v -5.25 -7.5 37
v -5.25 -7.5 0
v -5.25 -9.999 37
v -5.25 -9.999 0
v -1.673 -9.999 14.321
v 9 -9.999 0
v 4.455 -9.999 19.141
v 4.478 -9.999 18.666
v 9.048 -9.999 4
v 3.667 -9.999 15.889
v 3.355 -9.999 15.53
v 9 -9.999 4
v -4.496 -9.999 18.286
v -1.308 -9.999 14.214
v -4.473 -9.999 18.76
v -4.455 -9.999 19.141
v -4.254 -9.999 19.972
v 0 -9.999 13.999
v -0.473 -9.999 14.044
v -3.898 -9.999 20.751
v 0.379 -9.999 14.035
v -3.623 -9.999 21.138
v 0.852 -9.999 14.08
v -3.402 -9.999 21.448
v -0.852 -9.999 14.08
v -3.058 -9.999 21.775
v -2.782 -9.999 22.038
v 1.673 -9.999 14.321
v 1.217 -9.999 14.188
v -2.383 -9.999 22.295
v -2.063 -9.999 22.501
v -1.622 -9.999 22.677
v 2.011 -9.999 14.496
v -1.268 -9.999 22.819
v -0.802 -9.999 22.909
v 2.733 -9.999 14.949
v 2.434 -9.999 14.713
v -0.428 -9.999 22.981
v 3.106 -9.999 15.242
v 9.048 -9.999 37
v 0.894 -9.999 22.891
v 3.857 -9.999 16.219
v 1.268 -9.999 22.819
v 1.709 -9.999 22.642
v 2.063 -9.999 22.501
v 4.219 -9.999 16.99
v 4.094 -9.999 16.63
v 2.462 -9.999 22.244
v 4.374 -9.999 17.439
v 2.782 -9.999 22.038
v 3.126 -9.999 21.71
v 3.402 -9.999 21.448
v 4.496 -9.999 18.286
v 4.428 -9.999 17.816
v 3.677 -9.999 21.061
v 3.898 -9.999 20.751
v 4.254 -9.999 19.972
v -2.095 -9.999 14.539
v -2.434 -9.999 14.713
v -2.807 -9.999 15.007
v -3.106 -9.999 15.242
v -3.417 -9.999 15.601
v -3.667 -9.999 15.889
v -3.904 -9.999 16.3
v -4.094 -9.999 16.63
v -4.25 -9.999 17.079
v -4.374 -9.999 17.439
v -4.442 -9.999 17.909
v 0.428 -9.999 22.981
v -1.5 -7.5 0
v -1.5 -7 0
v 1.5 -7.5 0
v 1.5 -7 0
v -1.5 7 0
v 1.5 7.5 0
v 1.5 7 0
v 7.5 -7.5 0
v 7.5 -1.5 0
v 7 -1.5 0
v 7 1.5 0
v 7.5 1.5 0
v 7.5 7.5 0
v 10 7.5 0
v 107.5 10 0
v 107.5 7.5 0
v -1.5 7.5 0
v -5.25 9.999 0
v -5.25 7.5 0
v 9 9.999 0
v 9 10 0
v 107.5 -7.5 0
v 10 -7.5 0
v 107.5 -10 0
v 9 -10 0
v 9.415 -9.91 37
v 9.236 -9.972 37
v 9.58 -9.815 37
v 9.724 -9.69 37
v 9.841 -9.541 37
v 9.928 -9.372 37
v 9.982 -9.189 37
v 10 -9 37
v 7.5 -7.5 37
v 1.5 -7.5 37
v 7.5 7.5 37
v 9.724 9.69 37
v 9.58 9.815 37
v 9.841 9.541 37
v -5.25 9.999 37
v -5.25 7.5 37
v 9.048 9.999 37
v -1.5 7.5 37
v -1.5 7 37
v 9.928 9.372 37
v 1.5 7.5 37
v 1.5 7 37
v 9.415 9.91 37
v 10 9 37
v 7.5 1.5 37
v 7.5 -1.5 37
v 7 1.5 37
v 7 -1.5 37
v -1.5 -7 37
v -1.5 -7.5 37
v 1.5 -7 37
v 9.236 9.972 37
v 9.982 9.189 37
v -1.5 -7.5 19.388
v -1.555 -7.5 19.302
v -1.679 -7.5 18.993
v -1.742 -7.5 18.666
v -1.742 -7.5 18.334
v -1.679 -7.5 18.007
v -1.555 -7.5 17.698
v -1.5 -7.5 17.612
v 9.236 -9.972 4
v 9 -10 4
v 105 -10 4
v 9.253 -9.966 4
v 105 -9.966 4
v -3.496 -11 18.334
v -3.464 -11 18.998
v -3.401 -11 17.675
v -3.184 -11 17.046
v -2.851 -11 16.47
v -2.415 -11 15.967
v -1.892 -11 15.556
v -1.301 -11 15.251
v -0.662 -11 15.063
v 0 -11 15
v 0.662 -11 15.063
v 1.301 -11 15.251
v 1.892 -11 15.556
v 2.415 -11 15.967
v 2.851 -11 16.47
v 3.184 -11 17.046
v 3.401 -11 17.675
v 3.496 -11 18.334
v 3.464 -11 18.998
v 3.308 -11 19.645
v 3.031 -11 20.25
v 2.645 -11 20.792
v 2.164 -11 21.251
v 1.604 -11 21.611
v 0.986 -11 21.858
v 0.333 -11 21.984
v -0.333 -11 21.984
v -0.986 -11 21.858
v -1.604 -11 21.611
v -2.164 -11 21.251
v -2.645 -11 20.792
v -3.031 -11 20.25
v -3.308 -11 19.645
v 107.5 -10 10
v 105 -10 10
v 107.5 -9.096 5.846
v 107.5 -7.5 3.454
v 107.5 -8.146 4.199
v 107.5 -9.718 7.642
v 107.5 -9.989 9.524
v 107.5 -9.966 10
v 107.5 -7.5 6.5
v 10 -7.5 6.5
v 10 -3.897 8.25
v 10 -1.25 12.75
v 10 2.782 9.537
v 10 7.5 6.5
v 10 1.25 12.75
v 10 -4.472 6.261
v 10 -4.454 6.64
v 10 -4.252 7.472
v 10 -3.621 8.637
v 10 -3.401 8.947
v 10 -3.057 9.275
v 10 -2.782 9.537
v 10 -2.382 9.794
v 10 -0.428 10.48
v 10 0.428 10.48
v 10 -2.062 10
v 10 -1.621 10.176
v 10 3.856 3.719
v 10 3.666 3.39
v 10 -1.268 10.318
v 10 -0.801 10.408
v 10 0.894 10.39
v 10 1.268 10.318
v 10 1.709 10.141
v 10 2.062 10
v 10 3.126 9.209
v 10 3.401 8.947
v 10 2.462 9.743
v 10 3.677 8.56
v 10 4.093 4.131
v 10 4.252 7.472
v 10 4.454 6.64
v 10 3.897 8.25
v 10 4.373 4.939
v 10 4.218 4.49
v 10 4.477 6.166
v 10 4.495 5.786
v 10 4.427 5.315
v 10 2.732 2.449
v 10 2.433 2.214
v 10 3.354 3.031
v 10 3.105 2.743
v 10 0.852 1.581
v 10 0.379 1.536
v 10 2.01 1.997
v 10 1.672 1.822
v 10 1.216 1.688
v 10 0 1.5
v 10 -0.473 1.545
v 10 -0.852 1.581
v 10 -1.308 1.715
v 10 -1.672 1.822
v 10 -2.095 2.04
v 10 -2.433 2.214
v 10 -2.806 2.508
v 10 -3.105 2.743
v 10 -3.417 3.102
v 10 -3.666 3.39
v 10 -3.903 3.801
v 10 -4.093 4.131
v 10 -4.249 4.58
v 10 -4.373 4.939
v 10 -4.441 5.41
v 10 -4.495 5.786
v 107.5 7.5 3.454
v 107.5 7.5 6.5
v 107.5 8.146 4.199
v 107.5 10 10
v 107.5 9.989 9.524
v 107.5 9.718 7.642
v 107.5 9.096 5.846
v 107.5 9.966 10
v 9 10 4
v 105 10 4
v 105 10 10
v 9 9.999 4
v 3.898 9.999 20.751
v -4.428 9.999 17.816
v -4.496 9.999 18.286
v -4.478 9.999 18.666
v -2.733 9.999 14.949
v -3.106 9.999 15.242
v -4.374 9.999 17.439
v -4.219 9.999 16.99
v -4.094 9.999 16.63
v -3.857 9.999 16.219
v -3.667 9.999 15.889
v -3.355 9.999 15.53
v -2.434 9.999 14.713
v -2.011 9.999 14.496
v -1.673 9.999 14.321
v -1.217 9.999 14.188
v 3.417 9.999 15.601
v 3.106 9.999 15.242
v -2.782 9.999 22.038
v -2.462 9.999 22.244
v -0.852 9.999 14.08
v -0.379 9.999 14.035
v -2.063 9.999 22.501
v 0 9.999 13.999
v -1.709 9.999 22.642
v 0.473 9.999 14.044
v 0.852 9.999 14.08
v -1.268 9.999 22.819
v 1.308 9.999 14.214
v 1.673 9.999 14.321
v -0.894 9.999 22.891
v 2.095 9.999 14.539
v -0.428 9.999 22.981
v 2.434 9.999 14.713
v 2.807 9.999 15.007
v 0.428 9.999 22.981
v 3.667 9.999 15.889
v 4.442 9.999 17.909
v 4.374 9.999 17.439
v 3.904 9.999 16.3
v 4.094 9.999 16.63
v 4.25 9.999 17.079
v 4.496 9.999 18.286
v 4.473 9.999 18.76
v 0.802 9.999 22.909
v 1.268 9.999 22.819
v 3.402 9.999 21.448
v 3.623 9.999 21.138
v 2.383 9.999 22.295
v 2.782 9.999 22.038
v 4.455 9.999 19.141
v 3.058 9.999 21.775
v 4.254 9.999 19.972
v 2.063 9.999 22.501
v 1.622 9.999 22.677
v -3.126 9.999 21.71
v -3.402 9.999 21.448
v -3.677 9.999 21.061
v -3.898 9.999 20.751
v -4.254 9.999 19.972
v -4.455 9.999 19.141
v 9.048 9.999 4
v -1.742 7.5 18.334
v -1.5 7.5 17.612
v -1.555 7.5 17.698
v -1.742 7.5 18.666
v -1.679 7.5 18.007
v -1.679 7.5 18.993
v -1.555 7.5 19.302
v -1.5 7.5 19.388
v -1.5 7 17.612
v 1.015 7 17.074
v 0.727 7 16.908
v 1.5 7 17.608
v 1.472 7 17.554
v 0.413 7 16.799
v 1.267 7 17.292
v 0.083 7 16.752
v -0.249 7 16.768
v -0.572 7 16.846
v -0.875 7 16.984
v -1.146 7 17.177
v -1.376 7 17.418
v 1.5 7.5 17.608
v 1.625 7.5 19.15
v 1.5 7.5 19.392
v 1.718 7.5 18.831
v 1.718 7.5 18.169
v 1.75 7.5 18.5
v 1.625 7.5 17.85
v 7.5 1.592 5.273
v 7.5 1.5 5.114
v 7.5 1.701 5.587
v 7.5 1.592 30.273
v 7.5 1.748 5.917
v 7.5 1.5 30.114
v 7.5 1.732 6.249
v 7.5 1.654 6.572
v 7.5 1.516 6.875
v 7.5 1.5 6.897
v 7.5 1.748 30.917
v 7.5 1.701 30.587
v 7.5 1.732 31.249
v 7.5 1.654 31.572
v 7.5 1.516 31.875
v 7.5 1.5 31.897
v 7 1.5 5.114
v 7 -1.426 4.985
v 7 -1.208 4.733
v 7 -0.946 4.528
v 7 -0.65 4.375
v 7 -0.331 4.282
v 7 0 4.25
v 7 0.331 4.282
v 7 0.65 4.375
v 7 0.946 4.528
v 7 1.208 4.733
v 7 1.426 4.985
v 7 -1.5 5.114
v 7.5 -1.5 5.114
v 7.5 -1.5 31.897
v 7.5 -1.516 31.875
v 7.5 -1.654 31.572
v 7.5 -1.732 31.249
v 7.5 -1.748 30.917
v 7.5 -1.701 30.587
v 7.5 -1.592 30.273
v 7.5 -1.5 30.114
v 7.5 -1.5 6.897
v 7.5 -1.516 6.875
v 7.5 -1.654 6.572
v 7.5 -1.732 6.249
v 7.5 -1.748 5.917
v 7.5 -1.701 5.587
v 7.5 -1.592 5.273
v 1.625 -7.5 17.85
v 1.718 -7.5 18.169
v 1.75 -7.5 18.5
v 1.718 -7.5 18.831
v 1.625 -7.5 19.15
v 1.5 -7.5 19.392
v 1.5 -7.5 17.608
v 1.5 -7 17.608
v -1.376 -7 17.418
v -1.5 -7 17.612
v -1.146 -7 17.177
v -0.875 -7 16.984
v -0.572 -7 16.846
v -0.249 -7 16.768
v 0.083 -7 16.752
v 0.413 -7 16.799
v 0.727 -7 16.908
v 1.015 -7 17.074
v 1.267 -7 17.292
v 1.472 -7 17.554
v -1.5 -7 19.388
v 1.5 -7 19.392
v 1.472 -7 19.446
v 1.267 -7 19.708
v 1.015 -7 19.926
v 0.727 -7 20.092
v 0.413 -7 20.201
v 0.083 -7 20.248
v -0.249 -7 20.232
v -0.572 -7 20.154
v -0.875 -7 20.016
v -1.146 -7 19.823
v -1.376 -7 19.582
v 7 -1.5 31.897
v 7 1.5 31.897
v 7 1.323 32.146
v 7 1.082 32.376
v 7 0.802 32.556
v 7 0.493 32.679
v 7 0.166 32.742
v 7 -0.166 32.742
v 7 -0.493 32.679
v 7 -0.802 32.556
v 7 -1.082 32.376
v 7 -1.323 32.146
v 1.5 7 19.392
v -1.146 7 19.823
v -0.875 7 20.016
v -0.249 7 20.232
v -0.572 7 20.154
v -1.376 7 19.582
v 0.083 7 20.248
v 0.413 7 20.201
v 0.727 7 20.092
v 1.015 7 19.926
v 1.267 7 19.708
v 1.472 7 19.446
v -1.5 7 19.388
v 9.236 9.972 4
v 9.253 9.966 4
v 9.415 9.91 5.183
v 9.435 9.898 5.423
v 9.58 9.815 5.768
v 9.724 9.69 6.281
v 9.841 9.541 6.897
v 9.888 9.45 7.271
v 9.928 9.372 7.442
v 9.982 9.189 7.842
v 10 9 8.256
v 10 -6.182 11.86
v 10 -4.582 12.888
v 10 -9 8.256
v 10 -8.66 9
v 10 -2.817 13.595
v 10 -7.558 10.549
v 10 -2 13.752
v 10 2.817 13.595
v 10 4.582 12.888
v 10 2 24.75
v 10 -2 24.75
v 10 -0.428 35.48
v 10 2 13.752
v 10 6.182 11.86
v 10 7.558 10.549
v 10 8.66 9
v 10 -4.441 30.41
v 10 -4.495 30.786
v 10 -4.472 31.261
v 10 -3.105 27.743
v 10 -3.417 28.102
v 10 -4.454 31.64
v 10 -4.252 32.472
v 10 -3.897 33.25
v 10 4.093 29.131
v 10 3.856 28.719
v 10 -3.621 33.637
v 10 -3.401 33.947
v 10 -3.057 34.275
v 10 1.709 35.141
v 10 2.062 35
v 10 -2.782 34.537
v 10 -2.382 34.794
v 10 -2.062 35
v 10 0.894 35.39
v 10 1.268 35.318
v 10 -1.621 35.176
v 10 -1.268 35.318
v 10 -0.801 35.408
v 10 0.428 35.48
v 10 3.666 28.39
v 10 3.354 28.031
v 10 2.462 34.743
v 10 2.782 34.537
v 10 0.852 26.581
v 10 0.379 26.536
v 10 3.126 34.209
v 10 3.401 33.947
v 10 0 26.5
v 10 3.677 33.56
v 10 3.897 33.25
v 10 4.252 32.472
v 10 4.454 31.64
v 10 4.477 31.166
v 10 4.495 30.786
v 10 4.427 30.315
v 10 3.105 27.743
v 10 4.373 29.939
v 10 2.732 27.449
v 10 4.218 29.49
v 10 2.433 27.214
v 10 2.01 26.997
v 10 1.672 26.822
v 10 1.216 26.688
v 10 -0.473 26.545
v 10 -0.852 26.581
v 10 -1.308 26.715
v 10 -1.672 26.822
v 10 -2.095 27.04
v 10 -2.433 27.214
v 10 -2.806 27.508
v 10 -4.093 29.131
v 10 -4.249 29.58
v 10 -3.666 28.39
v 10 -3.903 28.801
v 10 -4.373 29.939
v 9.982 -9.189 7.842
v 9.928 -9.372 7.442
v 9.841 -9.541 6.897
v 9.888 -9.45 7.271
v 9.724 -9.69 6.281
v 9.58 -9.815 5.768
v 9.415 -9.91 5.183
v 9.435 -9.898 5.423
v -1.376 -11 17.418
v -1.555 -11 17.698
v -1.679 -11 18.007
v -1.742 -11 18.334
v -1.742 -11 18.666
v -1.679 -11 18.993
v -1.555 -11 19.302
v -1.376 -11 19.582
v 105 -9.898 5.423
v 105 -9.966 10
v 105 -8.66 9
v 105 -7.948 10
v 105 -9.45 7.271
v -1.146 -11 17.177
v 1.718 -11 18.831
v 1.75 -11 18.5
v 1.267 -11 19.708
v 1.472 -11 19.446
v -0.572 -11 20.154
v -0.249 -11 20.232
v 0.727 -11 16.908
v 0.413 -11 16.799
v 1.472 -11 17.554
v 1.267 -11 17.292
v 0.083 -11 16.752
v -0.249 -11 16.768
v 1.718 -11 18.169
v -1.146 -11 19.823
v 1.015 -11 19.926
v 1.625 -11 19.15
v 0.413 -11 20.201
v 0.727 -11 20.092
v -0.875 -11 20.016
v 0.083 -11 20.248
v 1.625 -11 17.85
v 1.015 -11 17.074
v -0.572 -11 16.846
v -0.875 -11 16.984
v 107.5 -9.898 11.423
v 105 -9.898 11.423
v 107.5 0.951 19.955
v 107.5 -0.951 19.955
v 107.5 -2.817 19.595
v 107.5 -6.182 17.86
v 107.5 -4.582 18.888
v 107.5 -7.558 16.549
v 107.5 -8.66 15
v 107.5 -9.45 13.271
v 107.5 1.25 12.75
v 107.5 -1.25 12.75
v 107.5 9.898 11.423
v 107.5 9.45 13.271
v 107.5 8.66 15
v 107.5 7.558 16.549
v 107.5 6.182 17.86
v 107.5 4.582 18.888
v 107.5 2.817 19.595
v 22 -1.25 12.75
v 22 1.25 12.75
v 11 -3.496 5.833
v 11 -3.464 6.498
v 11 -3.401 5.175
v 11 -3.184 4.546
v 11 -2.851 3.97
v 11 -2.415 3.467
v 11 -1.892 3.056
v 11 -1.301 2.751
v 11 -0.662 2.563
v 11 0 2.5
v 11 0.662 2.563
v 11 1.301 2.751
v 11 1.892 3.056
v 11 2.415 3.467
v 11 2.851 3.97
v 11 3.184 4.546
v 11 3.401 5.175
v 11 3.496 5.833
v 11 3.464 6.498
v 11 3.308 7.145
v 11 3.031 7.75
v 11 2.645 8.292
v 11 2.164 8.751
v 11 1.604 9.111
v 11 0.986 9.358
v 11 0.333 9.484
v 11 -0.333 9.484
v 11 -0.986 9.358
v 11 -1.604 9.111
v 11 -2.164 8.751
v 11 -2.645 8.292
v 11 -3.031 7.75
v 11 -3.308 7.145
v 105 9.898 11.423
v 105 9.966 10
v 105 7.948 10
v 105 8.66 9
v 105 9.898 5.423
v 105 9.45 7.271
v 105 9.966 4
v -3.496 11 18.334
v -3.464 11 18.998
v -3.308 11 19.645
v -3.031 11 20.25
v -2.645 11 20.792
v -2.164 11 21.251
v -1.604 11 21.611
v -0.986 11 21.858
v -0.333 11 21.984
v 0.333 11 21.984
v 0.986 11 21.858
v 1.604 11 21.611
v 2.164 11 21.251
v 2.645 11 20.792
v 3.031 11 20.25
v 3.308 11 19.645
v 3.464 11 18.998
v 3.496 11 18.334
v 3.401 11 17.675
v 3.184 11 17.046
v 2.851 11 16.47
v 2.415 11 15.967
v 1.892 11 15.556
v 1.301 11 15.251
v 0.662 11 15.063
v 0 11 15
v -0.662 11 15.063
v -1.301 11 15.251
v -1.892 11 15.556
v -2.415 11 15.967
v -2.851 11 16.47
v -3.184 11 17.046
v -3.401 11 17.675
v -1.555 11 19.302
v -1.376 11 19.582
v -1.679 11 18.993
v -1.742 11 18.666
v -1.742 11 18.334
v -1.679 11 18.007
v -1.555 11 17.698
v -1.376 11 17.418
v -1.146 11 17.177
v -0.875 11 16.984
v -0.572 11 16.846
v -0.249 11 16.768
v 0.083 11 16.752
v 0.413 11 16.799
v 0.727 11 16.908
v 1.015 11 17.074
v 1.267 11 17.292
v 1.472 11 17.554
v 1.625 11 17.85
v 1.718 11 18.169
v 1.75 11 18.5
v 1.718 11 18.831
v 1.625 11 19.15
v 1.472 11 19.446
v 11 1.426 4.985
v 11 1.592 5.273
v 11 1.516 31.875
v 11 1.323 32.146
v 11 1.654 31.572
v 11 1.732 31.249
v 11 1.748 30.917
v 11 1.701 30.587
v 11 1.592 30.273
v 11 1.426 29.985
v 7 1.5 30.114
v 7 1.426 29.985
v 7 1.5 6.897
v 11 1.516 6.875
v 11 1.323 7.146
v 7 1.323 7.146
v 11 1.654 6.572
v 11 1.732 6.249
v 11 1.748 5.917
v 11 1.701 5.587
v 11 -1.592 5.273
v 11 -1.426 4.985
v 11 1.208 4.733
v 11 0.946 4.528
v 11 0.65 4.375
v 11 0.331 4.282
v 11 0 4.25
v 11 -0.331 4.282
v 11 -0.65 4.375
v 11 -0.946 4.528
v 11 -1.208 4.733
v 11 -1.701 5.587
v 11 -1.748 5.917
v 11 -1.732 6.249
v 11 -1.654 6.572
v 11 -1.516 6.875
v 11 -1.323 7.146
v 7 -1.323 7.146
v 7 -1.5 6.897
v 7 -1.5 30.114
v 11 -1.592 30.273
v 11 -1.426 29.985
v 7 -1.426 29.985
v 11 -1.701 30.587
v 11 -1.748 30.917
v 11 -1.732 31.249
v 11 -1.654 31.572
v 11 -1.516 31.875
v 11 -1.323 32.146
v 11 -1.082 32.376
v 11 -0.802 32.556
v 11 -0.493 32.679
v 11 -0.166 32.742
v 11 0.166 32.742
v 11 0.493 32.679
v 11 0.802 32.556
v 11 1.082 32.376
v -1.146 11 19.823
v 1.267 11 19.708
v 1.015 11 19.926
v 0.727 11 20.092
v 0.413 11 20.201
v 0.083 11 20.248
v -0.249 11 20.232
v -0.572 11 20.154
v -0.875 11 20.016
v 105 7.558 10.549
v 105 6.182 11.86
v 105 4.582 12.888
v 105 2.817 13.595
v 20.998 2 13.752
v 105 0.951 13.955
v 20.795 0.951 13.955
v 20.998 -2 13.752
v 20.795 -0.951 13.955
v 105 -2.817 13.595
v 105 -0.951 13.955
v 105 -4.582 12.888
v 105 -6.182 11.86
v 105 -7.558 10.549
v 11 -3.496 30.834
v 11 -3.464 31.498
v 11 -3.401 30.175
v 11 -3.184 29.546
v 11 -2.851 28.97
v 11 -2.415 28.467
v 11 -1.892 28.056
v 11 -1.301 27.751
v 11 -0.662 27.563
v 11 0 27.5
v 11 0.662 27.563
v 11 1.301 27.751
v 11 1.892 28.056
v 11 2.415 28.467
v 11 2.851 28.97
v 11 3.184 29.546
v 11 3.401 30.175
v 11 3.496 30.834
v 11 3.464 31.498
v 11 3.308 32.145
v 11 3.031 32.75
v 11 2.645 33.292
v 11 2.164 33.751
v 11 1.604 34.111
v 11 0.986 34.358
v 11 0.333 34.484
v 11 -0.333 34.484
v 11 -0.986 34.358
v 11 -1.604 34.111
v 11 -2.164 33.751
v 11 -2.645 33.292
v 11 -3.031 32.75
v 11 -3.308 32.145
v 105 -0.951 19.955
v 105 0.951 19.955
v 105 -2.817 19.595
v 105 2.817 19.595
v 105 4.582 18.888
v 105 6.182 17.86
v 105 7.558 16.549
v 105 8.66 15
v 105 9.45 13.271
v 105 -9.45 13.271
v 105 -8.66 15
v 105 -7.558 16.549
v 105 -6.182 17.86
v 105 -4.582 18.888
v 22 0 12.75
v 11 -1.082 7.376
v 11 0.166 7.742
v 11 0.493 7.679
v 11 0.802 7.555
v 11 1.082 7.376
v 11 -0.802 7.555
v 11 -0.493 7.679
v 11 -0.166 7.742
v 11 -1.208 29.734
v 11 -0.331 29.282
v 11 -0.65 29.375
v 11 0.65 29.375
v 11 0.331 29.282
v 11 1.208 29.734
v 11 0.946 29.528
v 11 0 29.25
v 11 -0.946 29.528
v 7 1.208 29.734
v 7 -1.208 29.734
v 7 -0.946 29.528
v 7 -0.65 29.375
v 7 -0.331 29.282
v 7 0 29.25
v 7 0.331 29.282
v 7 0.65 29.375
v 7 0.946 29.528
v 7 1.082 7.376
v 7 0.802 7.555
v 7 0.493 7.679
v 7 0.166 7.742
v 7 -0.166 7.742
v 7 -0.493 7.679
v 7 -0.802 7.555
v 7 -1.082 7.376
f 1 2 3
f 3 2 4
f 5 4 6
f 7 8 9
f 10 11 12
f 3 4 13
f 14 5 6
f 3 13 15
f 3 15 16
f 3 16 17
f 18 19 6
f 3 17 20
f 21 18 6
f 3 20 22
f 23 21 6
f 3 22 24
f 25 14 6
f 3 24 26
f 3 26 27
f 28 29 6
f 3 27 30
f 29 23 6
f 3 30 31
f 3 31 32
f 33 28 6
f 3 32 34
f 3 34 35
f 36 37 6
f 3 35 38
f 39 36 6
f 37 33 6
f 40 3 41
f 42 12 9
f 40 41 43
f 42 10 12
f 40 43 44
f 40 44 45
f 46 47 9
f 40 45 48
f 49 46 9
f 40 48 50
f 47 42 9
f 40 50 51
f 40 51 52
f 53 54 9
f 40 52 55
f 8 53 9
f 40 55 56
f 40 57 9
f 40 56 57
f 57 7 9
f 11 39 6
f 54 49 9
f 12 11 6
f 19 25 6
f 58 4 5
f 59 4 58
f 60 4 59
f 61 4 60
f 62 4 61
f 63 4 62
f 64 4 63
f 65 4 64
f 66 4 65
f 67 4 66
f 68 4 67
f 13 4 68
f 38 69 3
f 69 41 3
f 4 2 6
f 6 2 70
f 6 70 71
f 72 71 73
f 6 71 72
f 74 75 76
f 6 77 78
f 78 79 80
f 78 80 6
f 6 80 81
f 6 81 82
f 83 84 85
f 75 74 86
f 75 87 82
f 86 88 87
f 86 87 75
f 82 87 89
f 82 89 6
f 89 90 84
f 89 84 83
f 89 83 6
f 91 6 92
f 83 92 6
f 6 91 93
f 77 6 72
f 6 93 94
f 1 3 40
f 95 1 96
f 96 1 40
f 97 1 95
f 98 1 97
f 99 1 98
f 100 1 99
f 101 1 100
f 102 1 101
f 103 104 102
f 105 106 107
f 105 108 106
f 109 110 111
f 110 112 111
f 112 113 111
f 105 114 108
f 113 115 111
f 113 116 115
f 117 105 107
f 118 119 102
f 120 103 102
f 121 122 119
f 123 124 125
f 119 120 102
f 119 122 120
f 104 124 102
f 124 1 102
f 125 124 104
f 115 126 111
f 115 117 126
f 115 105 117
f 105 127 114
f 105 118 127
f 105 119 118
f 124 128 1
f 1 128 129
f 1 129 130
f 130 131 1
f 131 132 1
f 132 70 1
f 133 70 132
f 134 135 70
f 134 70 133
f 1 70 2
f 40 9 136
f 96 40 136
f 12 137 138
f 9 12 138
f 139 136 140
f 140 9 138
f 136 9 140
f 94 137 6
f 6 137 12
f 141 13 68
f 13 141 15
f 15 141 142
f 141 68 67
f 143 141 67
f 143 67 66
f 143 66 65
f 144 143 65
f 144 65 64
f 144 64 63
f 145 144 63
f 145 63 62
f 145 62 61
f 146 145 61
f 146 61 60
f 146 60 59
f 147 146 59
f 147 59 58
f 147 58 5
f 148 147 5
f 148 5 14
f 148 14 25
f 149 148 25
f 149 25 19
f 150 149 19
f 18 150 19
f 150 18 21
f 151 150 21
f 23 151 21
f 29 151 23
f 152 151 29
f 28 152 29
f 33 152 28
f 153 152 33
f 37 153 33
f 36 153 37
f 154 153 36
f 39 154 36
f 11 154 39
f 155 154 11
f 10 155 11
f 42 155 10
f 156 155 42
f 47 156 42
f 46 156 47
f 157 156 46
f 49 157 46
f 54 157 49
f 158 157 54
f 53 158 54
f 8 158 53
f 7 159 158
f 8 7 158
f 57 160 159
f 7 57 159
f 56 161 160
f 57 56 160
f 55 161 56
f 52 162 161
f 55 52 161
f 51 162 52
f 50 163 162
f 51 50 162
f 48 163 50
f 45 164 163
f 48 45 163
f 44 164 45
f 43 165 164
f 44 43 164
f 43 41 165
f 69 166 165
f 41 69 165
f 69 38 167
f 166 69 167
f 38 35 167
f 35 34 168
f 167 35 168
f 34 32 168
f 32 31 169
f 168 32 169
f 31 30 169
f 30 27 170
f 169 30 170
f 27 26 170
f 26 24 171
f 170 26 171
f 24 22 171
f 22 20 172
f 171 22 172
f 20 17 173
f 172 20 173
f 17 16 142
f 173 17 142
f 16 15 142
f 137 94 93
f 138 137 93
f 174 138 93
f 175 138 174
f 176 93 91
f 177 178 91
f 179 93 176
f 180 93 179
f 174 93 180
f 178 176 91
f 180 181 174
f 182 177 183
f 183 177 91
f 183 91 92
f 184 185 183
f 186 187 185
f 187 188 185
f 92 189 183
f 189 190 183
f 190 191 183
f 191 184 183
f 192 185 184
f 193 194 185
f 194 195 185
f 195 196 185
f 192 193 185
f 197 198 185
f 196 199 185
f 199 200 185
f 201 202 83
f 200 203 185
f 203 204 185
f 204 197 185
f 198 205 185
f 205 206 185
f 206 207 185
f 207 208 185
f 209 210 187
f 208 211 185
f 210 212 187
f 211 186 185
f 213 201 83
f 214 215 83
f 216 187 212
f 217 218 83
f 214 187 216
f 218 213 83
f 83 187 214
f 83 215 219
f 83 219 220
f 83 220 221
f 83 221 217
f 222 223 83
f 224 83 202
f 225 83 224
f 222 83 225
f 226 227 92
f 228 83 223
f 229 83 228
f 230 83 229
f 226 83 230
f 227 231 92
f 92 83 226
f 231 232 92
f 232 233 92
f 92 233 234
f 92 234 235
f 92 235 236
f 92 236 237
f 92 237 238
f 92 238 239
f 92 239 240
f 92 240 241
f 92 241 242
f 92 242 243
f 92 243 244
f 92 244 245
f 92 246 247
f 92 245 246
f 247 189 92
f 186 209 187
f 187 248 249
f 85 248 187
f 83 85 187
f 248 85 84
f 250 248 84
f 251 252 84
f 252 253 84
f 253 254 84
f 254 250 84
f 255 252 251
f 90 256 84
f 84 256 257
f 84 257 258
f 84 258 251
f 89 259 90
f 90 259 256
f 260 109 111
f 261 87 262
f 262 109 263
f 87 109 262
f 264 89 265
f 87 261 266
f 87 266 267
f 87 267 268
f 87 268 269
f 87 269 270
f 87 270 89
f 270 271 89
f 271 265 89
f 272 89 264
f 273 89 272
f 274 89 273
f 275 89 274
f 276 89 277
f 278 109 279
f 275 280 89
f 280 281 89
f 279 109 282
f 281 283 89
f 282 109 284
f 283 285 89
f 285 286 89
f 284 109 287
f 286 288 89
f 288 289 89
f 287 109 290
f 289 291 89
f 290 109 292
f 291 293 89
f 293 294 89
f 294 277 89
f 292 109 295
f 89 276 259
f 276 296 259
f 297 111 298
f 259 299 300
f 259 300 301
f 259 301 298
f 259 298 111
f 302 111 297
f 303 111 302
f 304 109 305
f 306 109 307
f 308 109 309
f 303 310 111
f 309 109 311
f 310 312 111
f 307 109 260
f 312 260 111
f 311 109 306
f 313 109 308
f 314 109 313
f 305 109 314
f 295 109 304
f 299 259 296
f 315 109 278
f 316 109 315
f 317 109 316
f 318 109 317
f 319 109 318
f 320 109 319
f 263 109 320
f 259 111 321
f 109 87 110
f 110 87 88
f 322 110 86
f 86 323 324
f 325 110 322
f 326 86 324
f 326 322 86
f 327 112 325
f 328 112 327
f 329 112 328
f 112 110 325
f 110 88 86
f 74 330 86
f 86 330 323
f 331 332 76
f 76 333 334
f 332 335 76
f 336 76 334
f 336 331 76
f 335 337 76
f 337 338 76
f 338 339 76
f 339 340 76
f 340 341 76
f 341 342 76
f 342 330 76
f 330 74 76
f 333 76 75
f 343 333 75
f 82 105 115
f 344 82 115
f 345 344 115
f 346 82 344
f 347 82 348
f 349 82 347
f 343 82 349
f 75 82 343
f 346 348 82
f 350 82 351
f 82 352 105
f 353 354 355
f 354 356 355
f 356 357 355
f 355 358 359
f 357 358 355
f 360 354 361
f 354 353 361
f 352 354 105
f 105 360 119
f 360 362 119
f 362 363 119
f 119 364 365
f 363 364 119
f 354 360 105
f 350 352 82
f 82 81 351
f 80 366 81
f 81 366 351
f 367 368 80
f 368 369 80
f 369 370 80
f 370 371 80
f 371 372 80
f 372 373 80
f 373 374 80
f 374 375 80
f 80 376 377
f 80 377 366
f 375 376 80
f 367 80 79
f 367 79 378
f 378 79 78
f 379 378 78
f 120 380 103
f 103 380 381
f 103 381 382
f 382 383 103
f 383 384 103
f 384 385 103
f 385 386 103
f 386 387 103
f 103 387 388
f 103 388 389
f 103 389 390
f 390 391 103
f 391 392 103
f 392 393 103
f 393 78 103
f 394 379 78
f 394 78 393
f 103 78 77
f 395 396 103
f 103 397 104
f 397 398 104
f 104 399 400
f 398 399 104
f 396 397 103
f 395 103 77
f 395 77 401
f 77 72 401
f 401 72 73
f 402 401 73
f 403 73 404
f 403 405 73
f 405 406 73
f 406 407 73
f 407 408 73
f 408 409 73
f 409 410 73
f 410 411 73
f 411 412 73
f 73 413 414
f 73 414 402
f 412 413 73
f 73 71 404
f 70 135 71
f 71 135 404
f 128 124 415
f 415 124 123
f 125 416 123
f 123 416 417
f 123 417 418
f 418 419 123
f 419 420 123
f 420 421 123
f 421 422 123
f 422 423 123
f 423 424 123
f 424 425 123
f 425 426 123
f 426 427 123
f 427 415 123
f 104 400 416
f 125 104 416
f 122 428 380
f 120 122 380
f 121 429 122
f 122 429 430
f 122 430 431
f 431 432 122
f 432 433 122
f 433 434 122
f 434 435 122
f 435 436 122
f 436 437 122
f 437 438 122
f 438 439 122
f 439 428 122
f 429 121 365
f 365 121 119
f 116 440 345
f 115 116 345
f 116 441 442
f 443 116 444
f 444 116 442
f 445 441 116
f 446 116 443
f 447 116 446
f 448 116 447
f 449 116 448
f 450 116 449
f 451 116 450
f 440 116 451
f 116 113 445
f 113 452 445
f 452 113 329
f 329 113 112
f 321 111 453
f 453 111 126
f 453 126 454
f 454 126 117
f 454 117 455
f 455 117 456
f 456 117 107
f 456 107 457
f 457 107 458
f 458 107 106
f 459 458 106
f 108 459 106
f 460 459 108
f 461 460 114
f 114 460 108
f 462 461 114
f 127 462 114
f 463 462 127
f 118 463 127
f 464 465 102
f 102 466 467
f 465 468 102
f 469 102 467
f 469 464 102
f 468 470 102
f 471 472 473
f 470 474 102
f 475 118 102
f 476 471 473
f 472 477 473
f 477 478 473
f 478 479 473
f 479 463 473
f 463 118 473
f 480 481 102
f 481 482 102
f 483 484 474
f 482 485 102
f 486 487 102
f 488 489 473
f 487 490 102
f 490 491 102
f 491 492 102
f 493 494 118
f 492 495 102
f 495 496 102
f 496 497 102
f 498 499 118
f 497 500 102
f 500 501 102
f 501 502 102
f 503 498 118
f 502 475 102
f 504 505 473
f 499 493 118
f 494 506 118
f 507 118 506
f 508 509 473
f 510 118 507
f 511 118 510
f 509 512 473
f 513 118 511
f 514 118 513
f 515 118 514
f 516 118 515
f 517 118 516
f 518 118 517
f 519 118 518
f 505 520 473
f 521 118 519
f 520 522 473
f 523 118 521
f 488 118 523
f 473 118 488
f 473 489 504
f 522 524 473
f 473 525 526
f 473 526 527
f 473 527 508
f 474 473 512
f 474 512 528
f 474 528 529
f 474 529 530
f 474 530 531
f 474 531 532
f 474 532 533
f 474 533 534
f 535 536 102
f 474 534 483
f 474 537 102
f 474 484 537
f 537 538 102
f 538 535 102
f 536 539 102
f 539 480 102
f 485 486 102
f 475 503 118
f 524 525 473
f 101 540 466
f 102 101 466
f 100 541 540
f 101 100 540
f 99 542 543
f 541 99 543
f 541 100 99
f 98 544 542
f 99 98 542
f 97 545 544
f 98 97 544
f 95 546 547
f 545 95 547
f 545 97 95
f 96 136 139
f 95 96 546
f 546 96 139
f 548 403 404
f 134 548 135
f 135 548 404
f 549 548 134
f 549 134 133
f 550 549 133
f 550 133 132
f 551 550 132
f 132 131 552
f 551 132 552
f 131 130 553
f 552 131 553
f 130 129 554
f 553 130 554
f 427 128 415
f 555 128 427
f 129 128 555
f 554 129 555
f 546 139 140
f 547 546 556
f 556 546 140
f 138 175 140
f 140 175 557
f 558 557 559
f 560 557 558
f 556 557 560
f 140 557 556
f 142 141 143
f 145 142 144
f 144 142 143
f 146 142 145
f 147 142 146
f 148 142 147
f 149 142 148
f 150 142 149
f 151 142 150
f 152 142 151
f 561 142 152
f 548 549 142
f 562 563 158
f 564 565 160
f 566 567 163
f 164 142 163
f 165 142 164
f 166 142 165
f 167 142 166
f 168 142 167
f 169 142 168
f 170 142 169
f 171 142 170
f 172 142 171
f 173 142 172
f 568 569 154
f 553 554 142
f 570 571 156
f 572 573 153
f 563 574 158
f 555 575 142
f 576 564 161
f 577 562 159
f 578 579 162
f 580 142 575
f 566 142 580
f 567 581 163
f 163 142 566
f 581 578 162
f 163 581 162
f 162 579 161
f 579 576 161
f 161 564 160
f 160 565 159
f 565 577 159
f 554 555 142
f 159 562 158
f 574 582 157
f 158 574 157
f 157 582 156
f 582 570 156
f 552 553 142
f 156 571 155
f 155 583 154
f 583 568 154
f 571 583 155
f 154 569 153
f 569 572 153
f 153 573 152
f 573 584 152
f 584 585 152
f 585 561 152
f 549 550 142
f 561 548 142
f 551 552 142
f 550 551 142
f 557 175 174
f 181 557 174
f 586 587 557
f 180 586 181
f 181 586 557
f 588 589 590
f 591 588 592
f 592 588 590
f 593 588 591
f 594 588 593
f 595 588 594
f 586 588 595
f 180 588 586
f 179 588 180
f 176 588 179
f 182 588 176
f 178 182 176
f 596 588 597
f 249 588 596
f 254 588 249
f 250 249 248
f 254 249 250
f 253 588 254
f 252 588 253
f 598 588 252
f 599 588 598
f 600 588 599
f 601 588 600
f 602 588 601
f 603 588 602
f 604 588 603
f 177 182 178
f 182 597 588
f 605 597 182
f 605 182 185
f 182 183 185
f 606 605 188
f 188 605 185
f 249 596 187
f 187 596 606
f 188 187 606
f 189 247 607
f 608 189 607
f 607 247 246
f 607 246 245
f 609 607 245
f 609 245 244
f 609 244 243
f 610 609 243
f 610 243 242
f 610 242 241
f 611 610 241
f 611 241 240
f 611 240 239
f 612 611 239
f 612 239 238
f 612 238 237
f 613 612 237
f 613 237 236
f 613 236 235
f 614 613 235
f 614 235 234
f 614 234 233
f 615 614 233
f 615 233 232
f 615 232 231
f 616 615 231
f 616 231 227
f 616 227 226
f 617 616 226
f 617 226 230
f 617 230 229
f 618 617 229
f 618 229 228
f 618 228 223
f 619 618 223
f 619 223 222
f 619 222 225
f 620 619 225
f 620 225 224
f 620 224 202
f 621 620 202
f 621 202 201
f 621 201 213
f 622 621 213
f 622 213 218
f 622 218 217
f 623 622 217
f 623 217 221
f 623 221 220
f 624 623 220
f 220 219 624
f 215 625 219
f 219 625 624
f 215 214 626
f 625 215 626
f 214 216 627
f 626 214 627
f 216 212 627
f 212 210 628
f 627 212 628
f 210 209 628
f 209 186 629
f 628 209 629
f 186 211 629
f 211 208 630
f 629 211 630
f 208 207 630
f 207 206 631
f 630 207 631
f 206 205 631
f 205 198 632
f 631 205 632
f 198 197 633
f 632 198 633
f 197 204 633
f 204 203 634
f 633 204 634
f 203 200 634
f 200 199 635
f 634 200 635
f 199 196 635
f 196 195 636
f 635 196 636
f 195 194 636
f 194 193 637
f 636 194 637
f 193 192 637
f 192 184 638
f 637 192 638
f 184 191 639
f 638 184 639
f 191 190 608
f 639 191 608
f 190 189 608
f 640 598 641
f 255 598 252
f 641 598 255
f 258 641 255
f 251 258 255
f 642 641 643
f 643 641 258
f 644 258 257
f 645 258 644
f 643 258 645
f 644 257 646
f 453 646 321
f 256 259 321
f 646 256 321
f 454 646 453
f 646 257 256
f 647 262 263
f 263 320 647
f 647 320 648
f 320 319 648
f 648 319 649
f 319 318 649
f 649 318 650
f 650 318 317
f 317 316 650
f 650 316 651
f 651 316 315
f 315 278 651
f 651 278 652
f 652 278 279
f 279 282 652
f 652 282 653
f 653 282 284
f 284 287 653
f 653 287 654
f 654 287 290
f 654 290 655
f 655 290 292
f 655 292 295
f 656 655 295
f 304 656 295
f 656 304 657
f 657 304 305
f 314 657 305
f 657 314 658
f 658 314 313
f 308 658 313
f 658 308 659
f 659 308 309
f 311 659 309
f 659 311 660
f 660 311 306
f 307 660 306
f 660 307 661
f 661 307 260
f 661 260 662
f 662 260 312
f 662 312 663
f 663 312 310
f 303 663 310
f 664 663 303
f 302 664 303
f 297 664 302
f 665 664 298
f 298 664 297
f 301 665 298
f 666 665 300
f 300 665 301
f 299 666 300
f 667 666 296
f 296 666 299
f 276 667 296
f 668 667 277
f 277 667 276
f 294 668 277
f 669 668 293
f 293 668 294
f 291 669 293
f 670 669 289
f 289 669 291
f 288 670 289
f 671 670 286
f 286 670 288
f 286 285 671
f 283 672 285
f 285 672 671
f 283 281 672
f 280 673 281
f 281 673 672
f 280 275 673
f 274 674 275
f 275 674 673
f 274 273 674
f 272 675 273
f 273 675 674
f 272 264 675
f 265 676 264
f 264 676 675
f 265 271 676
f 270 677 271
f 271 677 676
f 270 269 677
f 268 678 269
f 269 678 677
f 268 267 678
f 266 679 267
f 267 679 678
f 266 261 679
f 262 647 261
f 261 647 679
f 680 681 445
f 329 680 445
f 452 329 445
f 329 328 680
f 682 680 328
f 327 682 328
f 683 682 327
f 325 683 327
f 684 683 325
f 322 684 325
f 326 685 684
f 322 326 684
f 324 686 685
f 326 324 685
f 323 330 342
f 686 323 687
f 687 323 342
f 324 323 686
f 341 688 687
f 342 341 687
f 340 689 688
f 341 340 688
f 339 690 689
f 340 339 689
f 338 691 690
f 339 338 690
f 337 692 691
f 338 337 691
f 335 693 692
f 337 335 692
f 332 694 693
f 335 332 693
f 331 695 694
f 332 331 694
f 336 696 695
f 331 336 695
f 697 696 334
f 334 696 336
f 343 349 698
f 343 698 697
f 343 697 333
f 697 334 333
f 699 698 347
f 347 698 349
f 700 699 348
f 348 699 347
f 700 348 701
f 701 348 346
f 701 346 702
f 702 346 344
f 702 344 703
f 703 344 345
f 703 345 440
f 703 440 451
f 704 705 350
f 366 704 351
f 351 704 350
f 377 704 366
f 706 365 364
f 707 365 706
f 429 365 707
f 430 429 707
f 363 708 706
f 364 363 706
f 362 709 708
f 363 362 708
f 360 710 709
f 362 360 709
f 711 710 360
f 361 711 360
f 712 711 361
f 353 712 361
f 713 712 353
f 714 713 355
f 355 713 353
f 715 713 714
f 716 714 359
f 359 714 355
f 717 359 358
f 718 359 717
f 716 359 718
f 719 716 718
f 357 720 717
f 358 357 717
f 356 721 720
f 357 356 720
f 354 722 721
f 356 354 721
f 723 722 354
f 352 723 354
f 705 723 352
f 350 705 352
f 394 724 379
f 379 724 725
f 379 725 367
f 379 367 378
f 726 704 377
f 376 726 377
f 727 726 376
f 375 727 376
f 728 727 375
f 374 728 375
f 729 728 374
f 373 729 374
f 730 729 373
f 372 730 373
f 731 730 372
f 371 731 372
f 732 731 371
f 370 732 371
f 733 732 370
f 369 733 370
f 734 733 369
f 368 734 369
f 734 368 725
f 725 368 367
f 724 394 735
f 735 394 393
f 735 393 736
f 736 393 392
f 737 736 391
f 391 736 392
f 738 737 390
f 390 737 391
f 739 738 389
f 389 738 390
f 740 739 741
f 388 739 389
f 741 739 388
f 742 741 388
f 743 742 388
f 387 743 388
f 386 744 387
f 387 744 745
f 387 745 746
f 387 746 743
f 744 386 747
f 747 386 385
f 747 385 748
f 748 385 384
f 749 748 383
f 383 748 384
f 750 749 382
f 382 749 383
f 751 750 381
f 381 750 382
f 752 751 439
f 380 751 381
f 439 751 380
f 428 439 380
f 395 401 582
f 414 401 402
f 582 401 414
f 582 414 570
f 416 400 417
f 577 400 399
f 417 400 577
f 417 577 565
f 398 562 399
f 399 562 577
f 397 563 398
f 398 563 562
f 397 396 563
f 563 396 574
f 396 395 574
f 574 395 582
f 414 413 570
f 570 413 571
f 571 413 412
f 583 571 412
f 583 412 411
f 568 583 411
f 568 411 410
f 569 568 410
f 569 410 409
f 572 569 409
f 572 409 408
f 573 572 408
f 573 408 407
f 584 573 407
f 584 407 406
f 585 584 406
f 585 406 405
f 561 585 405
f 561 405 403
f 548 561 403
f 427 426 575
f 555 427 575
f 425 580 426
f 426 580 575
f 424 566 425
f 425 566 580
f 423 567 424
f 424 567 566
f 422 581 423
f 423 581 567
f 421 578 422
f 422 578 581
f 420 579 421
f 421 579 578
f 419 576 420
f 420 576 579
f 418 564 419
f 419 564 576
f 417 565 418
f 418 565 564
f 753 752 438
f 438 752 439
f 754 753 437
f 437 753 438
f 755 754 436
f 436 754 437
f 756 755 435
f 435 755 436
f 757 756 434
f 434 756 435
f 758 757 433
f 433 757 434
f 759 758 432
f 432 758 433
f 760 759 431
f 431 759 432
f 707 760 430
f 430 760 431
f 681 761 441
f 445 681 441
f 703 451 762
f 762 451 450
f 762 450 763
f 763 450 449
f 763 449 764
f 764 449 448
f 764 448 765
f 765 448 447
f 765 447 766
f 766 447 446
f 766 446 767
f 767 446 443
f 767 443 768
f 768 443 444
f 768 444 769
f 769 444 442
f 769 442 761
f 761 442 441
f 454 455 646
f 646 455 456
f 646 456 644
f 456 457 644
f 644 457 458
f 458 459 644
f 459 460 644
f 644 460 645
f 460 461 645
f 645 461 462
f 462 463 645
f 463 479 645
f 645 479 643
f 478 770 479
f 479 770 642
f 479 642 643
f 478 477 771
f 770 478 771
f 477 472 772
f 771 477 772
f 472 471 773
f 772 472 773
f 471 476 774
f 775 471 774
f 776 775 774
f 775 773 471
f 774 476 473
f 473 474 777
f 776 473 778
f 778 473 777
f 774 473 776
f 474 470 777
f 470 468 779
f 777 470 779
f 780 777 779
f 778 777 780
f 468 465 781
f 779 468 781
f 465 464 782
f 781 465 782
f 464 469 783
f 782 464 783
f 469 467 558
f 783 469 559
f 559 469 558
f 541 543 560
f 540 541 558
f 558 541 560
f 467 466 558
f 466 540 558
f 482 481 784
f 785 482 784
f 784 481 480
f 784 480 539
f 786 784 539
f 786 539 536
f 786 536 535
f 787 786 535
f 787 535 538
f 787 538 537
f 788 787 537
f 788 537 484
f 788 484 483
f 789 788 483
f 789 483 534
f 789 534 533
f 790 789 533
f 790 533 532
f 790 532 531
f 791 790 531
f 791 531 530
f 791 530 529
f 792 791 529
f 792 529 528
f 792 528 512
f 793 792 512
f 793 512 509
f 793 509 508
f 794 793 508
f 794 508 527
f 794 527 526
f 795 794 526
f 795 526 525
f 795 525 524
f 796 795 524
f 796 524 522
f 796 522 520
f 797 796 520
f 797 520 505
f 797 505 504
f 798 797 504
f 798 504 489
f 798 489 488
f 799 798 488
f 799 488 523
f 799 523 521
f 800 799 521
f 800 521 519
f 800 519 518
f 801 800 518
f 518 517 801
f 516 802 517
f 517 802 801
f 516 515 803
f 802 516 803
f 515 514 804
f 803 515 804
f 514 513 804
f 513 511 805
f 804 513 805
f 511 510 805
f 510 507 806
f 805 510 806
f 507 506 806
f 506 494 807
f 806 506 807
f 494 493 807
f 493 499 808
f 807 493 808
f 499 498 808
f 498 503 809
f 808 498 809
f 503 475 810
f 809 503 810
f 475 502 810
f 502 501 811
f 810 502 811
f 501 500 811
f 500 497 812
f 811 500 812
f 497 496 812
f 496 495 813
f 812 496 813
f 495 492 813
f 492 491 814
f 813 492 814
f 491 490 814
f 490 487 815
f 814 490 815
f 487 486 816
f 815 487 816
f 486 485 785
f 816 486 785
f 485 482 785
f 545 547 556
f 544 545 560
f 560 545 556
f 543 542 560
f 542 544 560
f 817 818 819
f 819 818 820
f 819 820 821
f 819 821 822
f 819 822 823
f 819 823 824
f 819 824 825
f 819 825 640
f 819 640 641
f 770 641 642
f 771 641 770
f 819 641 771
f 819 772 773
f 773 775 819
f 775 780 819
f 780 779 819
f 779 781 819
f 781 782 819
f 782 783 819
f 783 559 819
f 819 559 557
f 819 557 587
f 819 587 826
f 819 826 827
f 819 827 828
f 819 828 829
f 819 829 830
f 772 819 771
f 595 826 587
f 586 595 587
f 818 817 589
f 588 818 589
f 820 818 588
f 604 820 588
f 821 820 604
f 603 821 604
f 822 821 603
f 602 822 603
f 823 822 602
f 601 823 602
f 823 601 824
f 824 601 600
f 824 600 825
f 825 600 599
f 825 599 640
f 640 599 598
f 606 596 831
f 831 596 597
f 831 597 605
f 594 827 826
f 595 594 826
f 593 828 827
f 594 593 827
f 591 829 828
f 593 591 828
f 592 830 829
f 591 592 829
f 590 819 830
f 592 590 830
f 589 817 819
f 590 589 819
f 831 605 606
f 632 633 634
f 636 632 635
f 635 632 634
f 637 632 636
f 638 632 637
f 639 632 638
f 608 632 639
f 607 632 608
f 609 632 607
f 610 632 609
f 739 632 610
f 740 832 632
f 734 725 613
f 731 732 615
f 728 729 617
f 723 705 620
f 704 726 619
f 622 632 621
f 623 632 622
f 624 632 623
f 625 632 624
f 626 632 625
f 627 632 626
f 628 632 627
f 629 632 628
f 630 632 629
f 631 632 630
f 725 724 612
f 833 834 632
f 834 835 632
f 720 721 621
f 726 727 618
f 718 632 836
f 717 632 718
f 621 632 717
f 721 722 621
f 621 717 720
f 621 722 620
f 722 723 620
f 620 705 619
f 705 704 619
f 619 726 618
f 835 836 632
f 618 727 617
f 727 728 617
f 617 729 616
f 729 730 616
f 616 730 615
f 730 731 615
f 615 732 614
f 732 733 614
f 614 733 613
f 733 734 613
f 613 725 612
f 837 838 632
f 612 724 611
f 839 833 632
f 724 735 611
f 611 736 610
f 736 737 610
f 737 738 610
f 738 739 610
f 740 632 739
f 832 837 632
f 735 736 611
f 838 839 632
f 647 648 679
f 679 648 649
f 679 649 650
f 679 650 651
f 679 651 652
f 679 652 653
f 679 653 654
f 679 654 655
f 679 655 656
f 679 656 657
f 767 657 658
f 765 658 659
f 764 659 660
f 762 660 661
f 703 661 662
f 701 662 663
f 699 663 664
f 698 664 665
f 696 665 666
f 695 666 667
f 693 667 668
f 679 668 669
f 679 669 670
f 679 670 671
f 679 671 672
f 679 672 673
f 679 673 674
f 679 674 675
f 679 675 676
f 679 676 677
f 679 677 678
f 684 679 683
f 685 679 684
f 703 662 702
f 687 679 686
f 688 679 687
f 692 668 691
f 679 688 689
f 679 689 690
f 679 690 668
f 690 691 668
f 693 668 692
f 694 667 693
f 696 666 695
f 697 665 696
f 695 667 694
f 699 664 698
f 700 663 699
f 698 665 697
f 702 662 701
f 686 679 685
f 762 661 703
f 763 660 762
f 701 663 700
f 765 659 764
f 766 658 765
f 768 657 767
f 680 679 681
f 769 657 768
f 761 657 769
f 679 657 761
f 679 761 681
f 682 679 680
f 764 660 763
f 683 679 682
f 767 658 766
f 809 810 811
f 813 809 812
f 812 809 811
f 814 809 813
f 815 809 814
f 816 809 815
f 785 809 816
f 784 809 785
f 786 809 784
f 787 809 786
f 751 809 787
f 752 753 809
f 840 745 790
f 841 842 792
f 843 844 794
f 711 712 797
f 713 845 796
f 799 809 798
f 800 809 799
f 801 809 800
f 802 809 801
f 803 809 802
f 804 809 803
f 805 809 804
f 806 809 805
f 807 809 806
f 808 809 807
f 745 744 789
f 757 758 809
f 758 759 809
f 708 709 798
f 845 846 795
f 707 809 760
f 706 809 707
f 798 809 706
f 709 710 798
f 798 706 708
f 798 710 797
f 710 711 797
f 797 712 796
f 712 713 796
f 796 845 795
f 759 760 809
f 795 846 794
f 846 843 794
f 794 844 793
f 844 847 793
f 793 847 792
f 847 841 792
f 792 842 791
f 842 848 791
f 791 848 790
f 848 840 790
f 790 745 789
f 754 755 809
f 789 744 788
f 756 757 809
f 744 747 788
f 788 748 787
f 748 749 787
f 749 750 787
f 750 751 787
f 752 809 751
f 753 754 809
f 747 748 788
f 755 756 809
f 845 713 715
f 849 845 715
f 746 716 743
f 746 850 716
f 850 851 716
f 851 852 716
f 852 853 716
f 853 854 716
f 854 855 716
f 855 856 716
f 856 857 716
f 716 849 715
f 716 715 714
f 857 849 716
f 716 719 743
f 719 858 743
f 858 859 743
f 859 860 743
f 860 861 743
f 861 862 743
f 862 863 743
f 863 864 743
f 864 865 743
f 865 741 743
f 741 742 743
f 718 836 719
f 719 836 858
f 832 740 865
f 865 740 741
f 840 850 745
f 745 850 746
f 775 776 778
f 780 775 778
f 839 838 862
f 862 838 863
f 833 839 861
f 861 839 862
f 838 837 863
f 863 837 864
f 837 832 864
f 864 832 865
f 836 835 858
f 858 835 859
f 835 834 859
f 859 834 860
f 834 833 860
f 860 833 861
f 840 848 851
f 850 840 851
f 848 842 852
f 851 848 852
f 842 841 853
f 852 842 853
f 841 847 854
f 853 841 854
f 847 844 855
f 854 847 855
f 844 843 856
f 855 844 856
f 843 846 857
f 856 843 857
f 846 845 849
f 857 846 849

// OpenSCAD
// Stephen Stair 2014 (sgstair@akkit.org)
// Openbeam Kossel Spool Holder
// Ground up recreation of the thing here: http://www.thingiverse.com/thing:209294


beamsize = 15;
beamgapwidth = 3;
beamgapdepth=3;

beam_grip = 0.5;

interface_height = 37;
interface_overlap = beamsize*.85;

interface_smooth = 1;

wall = 2.5;
screw_wall = 3.5;
screw_size = 3.5;
screw_reinforce_radius = 7/2;


screw_low = 6;
screw_mid = interface_height/2;
screw_high = interface_height-6;

holder_length = 95;
holder_radius = (beamsize+wall*2)/2;
holder_height = 4;
holder_retain = 6;

support_size = 12;
support_wall = 4;

$fs = 0.1;
$fa = 11;


module beam(length)
{
	difference() {
		translate([-beamsize/2,-beamsize/2,0])
			cube([beamsize,beamsize,length]);

		translate([-beamsize/2,0,0])
			cube([beamgapdepth*2,beamgapwidth,length*3],center=true);
		translate([beamsize/2,0,0])
			cube([beamgapdepth*2,beamgapwidth,length*3],center=true);

		translate([0,-beamsize/2,0])
			cube([beamgapwidth,beamgapdepth*2,length*3],center=true);
		translate([0,beamsize/2,0])
			cube([beamgapwidth,beamgapdepth*2,length*3],center=true);
   }
}


module screw_reinforce()
{
	rotate([0,90,0])
		cylinder(r1=screw_reinforce_radius+screw_wall, r2 = screw_reinforce_radius,h=screw_wall);
  
}

module beam_interface()
{
	difference() {
		union()
		{
			// core wall

			// Round corners of interface base surface.
			minkowski()
      	{
				translate([0,0,interface_height/2])
					cube([beamsize+wall*2-interface_smooth*2, beamsize+wall*2-interface_smooth*2, interface_height-1],center=true);

				cylinder(r = interface_smooth, h=1, center=true);
			}

			// Add reinforcement around screw holes
			translate([beamsize/2,0,screw_low])
				screw_reinforce();			

			translate([beamsize/2,0,screw_high])
				screw_reinforce();

			translate([0,beamsize/2,screw_mid])
				rotate([0,0,90])
					screw_reinforce();

			translate([0,-beamsize/2,screw_mid])
				rotate([0,0,-90])
					screw_reinforce();
		}


		cube([beamsize-beam_grip*2,beamsize-beam_grip*2,interface_height*3],center=true);

		translate([-beamsize*1.5-interface_overlap,0,0])
			cube([beamsize*4,beamsize*4,interface_height*3],center=true);

		translate([0,0,-5]) beam(10+interface_height);

		// Cut off anything above the top
		translate([-beamsize*2,-beamsize*2,interface_height])
			cube([beamsize*4,beamsize*4,beamsize*4]);

		// Cut off anything below the bottom
		translate([-beamsize*2,-beamsize*2,-beamsize*4])
			cube([beamsize*4,beamsize*4,beamsize*4]);



		// screw holes

		translate([beamsize/2-2,0,screw_low])
			rotate([0,90,0])
				#cylinder(r=screw_size/2,h=screw_wall+4);

		translate([beamsize/2-2,0,screw_high])
			rotate([0,90,0])
				#cylinder(r=screw_size/2,h=screw_wall+4);

		translate([0,beamsize/2-2,screw_mid])
			rotate([-90,0,0])
				#cylinder(r=screw_size/2,h=screw_wall+4);

		translate([0,-beamsize/2+2,screw_mid])
			rotate([90,0,0])
				#cylinder(r=screw_size/2,h=screw_wall+4);
	}
}

module holder()
{
   // Calculate size of shapes to be removed below the holder
	remove_base_height = holder_height + holder_radius - (holder_radius-wall);
   
	remove_start = beamsize/2+wall-2;
	remove_length = holder_length+wall*4;
	remove_base_width = holder_radius*2-wall*2;
   remove_angle_size = (holder_radius-wall)*sqrt(2);

	difference()
	{
		union()
		{
			translate([beamsize/2+wall-1,0,holder_height])
				rotate([0,90,0])
					cylinder(r=holder_radius,h=holder_length+2);

			translate([beamsize/2+wall-1, -holder_radius, 0])
				cube([holder_length+2, holder_radius*2, holder_height]);
	
			translate([beamsize/2+wall+holder_length,0,holder_height + holder_retain])
				rotate([0,90,0])
					cylinder(r=holder_radius,h=wall);
	
			translate([beamsize/2+wall+holder_length, -holder_radius, 0])
				cube([wall, holder_radius*2, holder_height+holder_retain]);
		}

		translate([0,-holder_radius*2,-holder_radius*2])
			cube([remove_length*2,holder_radius*4,holder_radius*2]);
		translate([remove_start,-remove_base_width/2, -holder_radius*2])
			cube([remove_length,remove_base_width, remove_base_height + holder_radius*2]);

		difference()
		{
			translate([0,0,remove_base_height])
				rotate([45,0,0])
					translate([remove_start,-remove_angle_size/2,-remove_angle_size/2])
				      cube([remove_length, remove_angle_size,remove_angle_size]);

			translate([0,-holder_radius*2,remove_base_height + holder_radius - wall*1.5])
				cube([remove_length*2, holder_radius*4, holder_radius]);
		}

	}
}

module support()
{
	base_size = support_size*2/sqrt(2);

	translate([beamsize/2+wall,0,holder_height + holder_radius - wall/2])
	difference()
	{
		rotate([90,45,0])
   		cube([base_size,base_size,support_wall],center=true);

		translate([-base_size*2-wall/2,-base_size,-base_size])
			cube([base_size*2,base_size*2,base_size*2]);

		translate([-base_size,-base_size,-base_size*2])
			cube([base_size*2,base_size*2,base_size*2]);

	}
}


union()
{
	beam_interface();
	holder();
	support();
}
